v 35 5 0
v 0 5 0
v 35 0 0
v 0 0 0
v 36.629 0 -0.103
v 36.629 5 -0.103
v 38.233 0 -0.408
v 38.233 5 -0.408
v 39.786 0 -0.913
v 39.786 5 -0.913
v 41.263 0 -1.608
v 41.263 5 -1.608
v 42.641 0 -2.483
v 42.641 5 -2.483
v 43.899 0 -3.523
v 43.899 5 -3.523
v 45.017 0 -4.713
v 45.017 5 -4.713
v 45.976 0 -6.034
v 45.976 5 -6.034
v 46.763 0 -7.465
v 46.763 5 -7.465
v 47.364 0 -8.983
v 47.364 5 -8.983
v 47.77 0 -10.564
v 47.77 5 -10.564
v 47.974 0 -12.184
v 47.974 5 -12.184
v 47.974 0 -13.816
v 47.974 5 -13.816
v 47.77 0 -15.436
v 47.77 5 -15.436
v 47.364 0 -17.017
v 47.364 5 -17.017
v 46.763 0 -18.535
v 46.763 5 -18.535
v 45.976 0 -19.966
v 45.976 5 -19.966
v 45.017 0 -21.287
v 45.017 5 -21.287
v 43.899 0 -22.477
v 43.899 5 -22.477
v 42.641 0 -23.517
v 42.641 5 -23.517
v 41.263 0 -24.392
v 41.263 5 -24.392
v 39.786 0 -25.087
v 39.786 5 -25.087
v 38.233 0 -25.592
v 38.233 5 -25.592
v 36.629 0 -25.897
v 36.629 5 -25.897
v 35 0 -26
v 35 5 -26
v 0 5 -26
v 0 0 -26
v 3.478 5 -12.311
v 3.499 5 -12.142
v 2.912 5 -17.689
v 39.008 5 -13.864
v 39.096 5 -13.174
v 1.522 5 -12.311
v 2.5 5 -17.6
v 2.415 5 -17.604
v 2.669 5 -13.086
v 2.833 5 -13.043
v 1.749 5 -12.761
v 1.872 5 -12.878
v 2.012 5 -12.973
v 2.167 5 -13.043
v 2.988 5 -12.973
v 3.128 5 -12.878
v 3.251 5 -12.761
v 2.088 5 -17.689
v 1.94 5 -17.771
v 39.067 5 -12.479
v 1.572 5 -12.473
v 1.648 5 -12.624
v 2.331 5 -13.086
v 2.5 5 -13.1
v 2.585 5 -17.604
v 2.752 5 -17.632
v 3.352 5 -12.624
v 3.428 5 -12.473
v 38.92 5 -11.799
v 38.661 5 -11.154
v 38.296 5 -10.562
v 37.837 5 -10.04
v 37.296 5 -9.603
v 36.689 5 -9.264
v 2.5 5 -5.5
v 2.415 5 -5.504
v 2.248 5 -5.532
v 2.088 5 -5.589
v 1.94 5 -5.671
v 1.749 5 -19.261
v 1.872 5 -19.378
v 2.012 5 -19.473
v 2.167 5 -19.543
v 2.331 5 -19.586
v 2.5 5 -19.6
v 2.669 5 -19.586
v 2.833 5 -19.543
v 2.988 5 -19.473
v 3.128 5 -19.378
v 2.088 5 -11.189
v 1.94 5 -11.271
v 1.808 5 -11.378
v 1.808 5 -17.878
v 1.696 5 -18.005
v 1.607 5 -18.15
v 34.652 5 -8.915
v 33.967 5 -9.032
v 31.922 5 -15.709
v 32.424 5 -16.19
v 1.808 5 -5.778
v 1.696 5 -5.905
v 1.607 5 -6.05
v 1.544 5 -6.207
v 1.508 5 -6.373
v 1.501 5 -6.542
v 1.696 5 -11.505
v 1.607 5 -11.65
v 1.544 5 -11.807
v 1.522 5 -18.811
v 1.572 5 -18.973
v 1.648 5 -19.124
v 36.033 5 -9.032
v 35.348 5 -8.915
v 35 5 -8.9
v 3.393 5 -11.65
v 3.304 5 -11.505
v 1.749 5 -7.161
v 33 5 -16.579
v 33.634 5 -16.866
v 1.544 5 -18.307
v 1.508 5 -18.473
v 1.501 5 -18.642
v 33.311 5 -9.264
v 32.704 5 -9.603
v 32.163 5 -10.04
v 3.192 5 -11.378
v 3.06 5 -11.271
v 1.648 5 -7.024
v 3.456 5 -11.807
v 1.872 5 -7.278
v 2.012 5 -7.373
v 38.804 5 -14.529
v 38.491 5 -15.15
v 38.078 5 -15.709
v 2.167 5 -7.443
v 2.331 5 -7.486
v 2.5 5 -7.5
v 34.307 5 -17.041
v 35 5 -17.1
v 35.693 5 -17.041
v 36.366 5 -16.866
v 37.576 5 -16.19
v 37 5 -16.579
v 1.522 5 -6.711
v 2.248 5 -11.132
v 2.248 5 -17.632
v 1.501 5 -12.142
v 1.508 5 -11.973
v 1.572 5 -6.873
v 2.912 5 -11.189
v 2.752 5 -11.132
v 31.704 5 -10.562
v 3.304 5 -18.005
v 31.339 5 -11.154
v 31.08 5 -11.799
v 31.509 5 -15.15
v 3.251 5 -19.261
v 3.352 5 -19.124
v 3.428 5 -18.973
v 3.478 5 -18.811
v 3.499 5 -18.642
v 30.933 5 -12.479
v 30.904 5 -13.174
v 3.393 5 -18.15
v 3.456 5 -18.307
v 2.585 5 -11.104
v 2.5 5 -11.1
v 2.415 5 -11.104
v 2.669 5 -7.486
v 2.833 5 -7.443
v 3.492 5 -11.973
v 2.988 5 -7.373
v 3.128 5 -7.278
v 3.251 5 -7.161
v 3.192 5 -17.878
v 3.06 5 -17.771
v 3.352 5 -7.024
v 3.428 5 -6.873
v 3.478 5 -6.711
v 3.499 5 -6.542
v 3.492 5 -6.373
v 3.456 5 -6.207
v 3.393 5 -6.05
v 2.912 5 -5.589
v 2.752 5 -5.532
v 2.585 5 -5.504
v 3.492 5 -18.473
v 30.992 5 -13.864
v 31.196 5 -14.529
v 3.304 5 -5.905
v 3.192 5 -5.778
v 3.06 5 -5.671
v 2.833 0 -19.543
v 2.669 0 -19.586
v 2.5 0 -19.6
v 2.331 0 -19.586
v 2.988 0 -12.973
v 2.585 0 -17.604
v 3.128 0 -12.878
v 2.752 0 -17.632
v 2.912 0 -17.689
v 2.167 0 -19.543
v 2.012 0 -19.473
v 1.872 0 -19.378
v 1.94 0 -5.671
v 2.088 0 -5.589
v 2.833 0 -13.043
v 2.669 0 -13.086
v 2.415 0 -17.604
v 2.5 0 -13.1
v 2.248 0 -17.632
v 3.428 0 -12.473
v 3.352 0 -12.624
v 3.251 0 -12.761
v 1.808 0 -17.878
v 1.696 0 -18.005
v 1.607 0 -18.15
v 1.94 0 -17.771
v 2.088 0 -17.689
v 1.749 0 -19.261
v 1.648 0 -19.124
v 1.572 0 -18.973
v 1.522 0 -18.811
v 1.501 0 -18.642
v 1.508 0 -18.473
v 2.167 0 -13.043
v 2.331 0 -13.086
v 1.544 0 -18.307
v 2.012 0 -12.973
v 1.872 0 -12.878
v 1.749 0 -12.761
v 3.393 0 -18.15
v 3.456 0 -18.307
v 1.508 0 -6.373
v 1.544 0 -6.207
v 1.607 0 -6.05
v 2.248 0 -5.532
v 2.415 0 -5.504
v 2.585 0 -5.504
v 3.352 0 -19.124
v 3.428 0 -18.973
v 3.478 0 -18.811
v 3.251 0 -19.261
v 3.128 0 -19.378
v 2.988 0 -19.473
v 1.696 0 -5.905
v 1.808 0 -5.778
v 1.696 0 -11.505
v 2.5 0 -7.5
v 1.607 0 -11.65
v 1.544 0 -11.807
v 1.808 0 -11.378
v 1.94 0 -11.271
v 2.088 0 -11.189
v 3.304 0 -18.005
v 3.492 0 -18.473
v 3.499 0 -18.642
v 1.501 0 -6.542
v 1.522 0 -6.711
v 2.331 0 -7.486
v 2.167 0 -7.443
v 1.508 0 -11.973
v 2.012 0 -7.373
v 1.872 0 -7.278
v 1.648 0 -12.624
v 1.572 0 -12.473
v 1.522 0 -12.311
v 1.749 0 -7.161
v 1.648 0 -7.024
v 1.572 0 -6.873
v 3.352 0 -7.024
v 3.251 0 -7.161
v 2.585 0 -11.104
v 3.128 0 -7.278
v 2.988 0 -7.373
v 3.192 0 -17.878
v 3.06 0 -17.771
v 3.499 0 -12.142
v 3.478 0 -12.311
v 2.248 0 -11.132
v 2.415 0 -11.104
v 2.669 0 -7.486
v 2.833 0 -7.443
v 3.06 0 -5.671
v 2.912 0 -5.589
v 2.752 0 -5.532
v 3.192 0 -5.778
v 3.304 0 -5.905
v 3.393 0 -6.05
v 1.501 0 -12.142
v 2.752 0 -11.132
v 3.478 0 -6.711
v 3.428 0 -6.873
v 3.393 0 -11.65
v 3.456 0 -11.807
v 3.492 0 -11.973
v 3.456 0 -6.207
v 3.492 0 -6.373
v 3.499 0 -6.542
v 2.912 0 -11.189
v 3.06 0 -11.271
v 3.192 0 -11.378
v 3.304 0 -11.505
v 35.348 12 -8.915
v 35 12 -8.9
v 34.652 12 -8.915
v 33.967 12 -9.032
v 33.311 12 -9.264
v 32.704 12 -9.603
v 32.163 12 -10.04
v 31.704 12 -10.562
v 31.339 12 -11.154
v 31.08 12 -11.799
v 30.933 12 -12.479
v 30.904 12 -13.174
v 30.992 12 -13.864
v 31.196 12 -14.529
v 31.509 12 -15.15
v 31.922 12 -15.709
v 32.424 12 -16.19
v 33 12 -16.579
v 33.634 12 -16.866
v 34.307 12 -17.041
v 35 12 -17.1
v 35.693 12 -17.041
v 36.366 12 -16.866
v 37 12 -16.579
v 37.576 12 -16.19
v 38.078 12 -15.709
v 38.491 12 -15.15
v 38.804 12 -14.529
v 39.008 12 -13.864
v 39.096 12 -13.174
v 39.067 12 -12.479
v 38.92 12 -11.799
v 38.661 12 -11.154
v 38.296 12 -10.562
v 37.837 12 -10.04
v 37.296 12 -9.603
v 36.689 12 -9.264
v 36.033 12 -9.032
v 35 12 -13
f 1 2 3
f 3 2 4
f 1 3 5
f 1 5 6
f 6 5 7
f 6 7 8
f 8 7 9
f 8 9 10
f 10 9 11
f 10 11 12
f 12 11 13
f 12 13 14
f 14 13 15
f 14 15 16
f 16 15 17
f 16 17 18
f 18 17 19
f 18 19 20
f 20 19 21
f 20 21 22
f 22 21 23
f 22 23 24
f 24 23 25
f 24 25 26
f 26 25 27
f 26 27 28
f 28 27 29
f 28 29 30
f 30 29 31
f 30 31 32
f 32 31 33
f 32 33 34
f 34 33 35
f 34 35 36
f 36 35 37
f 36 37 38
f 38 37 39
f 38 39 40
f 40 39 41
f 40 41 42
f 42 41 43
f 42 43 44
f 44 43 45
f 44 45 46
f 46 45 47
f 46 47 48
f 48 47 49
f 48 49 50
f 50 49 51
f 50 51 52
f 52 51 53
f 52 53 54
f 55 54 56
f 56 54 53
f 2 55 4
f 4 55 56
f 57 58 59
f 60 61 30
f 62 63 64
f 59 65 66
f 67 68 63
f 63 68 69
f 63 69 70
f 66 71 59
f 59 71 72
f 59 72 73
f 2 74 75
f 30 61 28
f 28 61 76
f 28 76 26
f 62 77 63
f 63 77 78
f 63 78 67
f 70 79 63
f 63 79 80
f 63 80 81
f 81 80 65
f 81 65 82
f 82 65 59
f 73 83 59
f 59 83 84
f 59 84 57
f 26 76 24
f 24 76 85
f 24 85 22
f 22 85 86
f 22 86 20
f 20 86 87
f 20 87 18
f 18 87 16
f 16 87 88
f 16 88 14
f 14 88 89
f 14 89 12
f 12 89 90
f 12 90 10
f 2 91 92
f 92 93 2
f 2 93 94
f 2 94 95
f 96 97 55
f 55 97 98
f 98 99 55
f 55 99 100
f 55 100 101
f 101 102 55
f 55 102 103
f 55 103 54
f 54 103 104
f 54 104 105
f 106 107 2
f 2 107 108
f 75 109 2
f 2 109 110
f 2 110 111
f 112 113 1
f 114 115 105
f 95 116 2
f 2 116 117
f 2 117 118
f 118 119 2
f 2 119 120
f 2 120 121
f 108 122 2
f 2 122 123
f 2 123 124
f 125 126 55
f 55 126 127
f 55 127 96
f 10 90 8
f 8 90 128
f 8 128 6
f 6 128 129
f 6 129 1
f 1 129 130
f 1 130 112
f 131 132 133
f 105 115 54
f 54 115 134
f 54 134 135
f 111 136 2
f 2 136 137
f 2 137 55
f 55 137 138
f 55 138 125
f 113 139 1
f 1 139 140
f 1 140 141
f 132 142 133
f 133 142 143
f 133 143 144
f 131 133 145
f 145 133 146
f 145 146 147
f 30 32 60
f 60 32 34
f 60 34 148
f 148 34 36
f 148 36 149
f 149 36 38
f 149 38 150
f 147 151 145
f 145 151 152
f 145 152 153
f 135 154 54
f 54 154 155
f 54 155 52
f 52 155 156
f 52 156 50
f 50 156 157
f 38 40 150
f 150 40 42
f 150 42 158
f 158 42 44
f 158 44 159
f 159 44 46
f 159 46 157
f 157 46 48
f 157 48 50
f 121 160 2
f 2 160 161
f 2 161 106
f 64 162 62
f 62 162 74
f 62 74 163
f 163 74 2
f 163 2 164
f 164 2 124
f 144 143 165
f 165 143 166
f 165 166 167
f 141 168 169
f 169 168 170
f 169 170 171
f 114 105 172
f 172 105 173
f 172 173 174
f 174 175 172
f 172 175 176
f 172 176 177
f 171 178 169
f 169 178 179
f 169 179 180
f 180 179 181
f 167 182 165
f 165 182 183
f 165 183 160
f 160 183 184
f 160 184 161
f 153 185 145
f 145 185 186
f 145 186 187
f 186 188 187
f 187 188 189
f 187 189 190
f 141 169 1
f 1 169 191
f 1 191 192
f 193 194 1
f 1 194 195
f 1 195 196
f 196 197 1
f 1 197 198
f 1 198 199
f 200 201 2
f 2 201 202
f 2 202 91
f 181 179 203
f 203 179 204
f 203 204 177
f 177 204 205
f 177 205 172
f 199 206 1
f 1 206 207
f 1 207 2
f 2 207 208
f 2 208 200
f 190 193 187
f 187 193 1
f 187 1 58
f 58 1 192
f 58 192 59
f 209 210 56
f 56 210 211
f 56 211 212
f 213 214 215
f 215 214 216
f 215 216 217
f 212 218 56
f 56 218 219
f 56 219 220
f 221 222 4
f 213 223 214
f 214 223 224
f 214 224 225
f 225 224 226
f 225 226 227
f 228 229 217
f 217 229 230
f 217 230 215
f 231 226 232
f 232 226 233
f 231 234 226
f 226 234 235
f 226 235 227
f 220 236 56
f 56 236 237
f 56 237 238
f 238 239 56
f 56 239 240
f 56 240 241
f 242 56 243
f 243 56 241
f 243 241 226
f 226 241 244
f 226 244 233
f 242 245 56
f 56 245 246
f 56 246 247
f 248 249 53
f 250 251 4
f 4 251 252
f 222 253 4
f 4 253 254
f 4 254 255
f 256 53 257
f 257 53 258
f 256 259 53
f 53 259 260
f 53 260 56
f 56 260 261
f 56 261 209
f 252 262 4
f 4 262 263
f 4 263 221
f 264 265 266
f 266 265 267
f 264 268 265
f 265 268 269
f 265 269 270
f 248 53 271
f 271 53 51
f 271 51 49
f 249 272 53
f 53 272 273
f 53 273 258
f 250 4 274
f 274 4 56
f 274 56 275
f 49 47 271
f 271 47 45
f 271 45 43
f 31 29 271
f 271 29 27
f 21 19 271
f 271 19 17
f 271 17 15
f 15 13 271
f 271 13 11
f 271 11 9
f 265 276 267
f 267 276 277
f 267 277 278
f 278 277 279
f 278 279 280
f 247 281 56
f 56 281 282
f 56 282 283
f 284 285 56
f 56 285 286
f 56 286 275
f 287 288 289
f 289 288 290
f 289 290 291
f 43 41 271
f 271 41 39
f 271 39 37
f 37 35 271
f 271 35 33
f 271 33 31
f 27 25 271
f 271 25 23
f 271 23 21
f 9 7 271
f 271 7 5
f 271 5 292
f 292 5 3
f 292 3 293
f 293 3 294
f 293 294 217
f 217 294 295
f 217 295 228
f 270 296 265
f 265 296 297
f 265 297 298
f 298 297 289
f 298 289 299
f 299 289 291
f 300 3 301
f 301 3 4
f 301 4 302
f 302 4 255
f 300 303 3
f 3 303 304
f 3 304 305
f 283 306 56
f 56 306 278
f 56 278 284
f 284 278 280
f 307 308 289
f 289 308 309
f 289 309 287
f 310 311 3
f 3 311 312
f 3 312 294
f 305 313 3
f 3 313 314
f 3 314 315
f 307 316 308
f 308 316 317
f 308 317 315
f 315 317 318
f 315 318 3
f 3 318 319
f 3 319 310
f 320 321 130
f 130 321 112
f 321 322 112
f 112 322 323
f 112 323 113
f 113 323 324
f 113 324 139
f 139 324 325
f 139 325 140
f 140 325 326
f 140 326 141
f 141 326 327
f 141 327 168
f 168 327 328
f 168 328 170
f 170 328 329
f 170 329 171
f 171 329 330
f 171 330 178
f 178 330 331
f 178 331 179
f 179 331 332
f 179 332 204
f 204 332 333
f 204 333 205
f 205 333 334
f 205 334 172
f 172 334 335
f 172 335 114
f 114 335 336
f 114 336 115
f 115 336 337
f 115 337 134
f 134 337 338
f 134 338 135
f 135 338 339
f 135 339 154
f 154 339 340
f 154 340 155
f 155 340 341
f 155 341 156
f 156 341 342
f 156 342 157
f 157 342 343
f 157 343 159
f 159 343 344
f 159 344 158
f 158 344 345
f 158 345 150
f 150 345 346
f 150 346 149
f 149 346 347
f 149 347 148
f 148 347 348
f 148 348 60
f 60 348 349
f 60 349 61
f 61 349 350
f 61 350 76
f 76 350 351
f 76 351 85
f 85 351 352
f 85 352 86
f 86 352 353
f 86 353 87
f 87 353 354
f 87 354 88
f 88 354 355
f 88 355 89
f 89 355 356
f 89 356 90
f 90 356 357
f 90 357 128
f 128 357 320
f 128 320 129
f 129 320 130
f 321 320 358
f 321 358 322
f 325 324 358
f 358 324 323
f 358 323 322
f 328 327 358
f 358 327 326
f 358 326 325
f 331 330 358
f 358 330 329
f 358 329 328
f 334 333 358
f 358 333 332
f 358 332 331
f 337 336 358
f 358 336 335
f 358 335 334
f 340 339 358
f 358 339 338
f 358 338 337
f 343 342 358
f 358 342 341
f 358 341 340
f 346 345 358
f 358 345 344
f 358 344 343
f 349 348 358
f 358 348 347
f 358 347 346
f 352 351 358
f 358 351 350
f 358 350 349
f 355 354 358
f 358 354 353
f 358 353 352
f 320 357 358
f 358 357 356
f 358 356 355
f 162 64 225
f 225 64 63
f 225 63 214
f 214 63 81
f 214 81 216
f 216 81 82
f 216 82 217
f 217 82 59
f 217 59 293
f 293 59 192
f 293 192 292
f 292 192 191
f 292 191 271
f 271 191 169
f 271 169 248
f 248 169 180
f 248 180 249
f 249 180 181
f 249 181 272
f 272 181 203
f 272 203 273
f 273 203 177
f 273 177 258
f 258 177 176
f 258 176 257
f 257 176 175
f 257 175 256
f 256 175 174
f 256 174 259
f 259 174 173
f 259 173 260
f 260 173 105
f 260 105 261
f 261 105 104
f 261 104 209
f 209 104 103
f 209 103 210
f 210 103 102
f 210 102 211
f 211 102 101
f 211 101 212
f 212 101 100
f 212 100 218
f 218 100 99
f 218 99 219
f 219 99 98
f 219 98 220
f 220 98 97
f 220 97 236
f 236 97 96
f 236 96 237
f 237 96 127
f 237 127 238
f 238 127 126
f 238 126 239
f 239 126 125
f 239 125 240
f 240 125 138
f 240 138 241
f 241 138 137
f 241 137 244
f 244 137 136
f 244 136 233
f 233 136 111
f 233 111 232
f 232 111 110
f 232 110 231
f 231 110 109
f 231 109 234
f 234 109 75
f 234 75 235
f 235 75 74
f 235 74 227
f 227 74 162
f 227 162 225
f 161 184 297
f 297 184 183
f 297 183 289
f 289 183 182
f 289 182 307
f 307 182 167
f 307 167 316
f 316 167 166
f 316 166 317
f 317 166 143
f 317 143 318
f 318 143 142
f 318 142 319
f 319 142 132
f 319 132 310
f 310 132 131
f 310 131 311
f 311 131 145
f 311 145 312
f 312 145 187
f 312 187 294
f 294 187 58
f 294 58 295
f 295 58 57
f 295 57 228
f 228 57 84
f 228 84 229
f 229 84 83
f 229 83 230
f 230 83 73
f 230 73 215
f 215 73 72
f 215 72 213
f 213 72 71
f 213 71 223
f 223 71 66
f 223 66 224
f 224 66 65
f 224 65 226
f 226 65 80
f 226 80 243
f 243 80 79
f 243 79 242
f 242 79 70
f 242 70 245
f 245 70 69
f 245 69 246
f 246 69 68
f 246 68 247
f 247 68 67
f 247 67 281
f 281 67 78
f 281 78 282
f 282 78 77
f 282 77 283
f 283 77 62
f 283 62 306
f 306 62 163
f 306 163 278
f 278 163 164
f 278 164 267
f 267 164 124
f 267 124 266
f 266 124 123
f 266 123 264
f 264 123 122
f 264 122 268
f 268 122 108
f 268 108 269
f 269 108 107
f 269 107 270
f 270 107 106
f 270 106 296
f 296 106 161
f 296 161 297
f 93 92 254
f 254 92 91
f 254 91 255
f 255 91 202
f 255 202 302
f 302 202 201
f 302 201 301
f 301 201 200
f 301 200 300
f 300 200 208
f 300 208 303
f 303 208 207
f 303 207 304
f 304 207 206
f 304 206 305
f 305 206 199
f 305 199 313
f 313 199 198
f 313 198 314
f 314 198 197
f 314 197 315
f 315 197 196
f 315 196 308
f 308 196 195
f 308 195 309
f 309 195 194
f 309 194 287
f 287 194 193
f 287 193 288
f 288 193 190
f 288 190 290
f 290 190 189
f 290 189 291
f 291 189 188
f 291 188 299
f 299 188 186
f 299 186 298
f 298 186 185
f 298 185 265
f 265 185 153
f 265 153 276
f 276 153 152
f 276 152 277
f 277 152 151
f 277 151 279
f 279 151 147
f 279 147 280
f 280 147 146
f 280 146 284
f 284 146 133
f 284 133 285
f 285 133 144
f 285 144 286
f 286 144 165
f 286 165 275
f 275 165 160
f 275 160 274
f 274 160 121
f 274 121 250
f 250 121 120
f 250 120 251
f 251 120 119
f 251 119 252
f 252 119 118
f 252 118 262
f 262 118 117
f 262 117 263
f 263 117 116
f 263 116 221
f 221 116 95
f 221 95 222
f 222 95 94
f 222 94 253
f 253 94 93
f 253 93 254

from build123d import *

# Parameters (mm, degrees)
BOSS_EXTRUDE1_DEPTH       = 5
SKETCH2_R                 = 4.1
BOSS_EXTRUDE2_DEPTH       = 7
F_2_0MM_DOWEL_HOLE2_D     = 2
F_2_0MM_DOWEL_HOLE2_DEPTH = 7
F_2_0MM_DOWEL_HOLE2_TIP   = 0.600860619


with BuildPart() as part:
    # Sketch1 → Boss-Extrude1 (new body)
    with BuildSketch(Plane(origin=(0, 0, 0), x_dir=(1, 0, 0), z_dir=(0, 1, 0))):
        with BuildLine():
            Line((0, 26), (0, 0))
            Line((0, 0), (35, 0))
            ThreePointArc((35, 0), (22, 13), (35, 26))
            Line((35, 26), (0, 26))
        make_face()
        with BuildLine():
            ThreePointArc((35, 26), (22, 13), (35, 0))
            Line((35, 0), (35, 26))
        make_face()
        with BuildLine():
            Line((35, 26), (35, 0))
            ThreePointArc((35, 0), (44.192388155, 3.807611845), (48, 13))
            ThreePointArc((48, 13), (44.192388155, 22.192388155), (35, 26))
        make_face()
    extrude(amount=BOSS_EXTRUDE1_DEPTH)

    # Sketch2 → Boss-Extrude2 (add)
    with BuildSketch(Plane(origin=(0, 5, 0), x_dir=(1, 0, 0), z_dir=(0, 1, 0))):
        with Locations(Location((35, 13, 0), (0, 0, 270))):
            Circle(SKETCH2_R)
    extrude(amount=BOSS_EXTRUDE2_DEPTH)

    # Ø2.0mm Dowel Hole2
    with Locations(Plane.XZ):
        with Locations((2.5, -6.5), (2.5, -12.1), (2.5, -18.6)):
            Hole(F_2_0MM_DOWEL_HOLE2_D / 2, depth=F_2_0MM_DOWEL_HOLE2_DEPTH)
            with Locations((0, 0, -(F_2_0MM_DOWEL_HOLE2_DEPTH + F_2_0MM_DOWEL_HOLE2_TIP / 2))):  # 118° drill point
                Cone(0, F_2_0MM_DOWEL_HOLE2_D / 2, F_2_0MM_DOWEL_HOLE2_TIP, mode=Mode.SUBTRACT)


solid = part.part
